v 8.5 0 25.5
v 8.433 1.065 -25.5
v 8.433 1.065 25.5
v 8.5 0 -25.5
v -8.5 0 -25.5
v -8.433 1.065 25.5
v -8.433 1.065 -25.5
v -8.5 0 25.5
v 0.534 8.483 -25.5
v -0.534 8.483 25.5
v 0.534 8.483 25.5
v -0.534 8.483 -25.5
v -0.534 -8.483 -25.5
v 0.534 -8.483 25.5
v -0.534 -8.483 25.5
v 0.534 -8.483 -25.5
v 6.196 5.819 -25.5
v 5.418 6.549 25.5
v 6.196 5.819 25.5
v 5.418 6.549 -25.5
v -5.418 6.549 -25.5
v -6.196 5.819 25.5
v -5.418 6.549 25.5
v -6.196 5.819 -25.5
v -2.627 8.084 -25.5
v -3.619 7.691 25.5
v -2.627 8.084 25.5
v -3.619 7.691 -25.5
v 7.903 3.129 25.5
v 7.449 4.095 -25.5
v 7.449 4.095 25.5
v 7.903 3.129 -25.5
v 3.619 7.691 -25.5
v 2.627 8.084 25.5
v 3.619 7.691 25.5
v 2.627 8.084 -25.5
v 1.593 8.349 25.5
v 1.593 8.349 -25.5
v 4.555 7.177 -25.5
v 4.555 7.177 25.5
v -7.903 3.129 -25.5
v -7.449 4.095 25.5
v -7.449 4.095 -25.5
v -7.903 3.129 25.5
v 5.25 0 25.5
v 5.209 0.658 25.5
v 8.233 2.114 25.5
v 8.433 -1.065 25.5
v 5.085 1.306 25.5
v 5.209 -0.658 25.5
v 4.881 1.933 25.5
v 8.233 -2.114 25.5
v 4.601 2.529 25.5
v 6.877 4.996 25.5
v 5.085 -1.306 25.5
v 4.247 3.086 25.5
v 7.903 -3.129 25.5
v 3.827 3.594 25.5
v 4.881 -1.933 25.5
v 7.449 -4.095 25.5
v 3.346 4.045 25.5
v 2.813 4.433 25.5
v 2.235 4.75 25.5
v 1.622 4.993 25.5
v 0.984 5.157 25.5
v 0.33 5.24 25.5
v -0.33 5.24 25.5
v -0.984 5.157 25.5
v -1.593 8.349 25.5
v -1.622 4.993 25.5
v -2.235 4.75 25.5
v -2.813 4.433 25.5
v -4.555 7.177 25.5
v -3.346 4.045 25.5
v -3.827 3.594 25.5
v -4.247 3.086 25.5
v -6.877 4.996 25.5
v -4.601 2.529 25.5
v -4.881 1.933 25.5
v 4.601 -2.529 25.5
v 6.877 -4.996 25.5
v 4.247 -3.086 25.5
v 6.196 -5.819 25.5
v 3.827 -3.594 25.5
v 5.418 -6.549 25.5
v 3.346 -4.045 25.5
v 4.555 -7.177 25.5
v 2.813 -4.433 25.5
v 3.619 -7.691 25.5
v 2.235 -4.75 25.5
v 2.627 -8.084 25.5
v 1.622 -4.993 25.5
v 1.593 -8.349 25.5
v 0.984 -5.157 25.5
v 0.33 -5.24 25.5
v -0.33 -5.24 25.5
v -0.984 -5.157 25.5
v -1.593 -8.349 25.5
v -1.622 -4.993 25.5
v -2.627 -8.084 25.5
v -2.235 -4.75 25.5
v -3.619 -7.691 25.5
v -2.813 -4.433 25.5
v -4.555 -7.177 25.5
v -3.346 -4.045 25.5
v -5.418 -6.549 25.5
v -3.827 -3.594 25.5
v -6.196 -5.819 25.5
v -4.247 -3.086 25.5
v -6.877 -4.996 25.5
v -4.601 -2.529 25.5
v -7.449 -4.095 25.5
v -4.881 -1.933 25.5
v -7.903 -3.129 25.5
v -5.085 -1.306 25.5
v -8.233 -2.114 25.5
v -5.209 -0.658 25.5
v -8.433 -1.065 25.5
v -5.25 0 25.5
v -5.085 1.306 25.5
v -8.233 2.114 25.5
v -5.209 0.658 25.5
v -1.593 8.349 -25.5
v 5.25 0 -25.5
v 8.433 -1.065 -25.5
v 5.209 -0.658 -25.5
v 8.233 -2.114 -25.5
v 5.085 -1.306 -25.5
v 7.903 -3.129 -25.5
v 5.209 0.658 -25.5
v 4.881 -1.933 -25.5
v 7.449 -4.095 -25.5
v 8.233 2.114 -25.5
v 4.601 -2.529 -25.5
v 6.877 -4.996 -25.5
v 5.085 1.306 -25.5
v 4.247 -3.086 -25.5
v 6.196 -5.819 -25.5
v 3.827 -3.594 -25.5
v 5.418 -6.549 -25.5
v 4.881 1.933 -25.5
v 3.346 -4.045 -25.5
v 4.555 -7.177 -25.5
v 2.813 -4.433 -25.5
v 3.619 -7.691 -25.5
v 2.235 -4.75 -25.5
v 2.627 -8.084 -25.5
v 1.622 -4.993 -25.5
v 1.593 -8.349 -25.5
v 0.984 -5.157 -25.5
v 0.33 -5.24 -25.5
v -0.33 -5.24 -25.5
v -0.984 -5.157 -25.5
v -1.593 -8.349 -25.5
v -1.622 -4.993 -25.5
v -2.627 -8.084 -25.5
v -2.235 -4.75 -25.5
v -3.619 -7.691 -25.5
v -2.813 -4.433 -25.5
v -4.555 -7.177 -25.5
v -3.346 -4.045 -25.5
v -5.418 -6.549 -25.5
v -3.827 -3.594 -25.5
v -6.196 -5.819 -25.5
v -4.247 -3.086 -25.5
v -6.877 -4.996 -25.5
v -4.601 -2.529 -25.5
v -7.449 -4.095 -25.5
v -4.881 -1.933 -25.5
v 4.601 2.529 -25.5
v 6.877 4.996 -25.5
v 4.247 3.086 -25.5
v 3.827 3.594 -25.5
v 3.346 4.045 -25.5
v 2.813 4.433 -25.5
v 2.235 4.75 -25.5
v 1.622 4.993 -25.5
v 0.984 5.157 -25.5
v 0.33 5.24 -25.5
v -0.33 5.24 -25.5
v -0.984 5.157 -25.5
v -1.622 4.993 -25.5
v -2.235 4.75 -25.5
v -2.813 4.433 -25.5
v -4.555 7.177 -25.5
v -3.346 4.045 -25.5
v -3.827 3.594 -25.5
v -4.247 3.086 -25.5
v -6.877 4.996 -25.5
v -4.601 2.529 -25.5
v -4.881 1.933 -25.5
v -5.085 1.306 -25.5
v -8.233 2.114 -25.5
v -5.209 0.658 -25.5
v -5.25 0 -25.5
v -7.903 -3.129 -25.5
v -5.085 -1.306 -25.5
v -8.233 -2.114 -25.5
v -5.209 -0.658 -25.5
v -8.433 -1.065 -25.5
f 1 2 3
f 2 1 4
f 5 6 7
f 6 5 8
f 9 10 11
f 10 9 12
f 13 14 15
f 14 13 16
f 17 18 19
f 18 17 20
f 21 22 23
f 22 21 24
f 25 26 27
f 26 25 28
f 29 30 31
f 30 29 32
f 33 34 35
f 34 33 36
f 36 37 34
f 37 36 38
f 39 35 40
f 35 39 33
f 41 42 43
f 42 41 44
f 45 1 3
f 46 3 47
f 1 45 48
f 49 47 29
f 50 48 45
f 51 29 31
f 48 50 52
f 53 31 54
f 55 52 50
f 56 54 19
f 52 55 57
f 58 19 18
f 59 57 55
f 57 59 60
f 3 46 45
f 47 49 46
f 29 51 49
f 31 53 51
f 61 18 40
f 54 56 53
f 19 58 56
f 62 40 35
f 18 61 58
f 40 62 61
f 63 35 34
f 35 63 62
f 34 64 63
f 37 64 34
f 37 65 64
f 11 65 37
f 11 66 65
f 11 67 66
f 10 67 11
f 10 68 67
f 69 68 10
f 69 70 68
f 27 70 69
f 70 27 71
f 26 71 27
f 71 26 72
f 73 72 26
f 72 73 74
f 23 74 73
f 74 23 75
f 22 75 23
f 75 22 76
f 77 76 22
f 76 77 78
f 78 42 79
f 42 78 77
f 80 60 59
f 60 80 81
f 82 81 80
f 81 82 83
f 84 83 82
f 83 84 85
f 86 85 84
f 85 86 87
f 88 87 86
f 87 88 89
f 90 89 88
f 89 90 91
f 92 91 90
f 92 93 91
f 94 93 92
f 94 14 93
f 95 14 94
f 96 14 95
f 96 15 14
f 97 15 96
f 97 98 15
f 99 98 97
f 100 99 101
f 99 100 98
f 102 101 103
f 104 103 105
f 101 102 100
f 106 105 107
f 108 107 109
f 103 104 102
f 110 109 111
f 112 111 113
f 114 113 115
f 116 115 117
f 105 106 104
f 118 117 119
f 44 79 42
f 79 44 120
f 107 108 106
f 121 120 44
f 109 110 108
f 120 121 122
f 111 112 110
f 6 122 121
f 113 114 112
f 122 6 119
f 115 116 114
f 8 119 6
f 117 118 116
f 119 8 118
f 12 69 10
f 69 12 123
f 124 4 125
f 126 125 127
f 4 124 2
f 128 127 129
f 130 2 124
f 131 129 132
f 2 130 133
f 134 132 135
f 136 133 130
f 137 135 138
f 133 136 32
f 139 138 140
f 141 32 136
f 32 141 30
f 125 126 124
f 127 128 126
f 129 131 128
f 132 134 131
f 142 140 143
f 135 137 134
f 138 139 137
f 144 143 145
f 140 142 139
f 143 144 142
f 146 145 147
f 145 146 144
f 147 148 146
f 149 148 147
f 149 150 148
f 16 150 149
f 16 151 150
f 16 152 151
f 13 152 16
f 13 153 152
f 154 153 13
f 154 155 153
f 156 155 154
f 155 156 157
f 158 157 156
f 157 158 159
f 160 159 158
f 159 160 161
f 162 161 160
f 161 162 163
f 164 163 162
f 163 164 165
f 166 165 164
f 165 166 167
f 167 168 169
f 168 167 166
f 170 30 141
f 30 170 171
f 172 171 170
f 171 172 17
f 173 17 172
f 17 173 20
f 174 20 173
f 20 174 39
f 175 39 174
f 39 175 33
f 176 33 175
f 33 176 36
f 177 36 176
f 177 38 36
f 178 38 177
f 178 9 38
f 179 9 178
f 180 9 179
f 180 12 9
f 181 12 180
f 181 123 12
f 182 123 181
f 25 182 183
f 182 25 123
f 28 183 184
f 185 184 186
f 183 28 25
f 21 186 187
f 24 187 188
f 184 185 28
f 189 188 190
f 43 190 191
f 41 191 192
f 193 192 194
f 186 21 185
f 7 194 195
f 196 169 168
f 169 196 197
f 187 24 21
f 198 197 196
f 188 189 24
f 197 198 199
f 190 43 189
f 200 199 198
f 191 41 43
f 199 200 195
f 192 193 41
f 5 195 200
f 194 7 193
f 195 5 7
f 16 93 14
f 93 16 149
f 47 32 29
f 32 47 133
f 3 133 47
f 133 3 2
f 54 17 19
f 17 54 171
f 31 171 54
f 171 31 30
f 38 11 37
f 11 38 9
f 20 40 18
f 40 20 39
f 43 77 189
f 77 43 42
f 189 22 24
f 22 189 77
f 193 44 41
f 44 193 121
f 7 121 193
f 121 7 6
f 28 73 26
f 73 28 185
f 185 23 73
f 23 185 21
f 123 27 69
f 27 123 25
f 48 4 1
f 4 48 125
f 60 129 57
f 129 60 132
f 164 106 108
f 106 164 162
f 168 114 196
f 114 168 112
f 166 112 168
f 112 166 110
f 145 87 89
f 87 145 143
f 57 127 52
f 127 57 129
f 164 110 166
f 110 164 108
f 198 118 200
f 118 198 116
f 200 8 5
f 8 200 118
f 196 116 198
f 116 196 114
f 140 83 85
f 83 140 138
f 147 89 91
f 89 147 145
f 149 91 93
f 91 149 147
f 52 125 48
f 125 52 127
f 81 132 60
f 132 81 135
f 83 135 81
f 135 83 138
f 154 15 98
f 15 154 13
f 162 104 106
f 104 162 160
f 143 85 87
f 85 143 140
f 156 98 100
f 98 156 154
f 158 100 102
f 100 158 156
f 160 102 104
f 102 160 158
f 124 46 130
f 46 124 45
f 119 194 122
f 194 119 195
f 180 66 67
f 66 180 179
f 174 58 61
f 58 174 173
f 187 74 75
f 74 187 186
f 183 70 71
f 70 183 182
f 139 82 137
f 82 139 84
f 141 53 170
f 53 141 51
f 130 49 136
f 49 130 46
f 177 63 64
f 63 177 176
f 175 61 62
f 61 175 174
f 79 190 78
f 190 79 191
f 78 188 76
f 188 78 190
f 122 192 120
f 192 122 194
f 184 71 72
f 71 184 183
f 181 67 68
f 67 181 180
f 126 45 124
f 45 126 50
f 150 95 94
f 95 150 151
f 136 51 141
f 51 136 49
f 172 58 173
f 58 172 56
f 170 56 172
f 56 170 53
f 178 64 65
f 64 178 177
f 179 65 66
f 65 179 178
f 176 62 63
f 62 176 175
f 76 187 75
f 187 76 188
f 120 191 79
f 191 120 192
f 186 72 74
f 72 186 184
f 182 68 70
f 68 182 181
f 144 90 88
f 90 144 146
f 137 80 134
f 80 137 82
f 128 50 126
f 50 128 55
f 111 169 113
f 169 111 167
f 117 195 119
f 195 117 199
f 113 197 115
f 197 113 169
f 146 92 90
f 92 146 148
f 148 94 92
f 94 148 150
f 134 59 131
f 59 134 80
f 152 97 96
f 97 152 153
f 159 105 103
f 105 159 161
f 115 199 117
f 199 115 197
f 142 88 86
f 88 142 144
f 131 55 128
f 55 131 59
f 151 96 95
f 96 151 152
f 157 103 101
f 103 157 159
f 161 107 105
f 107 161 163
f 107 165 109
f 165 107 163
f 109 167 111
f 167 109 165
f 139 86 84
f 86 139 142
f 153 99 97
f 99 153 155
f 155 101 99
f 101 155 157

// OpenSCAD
$fn = 50;


difference() {
	union() {
		translate(v = [0, 0, -25.5000000000]) {
			cylinder(h = 51, r = 8.5000000000);
		}
	}
	union() {
		translate(v = [0, 0, -100.0000000000]) {
			cylinder(h = 200, r = 5.2500000000);
		}
	}
}
